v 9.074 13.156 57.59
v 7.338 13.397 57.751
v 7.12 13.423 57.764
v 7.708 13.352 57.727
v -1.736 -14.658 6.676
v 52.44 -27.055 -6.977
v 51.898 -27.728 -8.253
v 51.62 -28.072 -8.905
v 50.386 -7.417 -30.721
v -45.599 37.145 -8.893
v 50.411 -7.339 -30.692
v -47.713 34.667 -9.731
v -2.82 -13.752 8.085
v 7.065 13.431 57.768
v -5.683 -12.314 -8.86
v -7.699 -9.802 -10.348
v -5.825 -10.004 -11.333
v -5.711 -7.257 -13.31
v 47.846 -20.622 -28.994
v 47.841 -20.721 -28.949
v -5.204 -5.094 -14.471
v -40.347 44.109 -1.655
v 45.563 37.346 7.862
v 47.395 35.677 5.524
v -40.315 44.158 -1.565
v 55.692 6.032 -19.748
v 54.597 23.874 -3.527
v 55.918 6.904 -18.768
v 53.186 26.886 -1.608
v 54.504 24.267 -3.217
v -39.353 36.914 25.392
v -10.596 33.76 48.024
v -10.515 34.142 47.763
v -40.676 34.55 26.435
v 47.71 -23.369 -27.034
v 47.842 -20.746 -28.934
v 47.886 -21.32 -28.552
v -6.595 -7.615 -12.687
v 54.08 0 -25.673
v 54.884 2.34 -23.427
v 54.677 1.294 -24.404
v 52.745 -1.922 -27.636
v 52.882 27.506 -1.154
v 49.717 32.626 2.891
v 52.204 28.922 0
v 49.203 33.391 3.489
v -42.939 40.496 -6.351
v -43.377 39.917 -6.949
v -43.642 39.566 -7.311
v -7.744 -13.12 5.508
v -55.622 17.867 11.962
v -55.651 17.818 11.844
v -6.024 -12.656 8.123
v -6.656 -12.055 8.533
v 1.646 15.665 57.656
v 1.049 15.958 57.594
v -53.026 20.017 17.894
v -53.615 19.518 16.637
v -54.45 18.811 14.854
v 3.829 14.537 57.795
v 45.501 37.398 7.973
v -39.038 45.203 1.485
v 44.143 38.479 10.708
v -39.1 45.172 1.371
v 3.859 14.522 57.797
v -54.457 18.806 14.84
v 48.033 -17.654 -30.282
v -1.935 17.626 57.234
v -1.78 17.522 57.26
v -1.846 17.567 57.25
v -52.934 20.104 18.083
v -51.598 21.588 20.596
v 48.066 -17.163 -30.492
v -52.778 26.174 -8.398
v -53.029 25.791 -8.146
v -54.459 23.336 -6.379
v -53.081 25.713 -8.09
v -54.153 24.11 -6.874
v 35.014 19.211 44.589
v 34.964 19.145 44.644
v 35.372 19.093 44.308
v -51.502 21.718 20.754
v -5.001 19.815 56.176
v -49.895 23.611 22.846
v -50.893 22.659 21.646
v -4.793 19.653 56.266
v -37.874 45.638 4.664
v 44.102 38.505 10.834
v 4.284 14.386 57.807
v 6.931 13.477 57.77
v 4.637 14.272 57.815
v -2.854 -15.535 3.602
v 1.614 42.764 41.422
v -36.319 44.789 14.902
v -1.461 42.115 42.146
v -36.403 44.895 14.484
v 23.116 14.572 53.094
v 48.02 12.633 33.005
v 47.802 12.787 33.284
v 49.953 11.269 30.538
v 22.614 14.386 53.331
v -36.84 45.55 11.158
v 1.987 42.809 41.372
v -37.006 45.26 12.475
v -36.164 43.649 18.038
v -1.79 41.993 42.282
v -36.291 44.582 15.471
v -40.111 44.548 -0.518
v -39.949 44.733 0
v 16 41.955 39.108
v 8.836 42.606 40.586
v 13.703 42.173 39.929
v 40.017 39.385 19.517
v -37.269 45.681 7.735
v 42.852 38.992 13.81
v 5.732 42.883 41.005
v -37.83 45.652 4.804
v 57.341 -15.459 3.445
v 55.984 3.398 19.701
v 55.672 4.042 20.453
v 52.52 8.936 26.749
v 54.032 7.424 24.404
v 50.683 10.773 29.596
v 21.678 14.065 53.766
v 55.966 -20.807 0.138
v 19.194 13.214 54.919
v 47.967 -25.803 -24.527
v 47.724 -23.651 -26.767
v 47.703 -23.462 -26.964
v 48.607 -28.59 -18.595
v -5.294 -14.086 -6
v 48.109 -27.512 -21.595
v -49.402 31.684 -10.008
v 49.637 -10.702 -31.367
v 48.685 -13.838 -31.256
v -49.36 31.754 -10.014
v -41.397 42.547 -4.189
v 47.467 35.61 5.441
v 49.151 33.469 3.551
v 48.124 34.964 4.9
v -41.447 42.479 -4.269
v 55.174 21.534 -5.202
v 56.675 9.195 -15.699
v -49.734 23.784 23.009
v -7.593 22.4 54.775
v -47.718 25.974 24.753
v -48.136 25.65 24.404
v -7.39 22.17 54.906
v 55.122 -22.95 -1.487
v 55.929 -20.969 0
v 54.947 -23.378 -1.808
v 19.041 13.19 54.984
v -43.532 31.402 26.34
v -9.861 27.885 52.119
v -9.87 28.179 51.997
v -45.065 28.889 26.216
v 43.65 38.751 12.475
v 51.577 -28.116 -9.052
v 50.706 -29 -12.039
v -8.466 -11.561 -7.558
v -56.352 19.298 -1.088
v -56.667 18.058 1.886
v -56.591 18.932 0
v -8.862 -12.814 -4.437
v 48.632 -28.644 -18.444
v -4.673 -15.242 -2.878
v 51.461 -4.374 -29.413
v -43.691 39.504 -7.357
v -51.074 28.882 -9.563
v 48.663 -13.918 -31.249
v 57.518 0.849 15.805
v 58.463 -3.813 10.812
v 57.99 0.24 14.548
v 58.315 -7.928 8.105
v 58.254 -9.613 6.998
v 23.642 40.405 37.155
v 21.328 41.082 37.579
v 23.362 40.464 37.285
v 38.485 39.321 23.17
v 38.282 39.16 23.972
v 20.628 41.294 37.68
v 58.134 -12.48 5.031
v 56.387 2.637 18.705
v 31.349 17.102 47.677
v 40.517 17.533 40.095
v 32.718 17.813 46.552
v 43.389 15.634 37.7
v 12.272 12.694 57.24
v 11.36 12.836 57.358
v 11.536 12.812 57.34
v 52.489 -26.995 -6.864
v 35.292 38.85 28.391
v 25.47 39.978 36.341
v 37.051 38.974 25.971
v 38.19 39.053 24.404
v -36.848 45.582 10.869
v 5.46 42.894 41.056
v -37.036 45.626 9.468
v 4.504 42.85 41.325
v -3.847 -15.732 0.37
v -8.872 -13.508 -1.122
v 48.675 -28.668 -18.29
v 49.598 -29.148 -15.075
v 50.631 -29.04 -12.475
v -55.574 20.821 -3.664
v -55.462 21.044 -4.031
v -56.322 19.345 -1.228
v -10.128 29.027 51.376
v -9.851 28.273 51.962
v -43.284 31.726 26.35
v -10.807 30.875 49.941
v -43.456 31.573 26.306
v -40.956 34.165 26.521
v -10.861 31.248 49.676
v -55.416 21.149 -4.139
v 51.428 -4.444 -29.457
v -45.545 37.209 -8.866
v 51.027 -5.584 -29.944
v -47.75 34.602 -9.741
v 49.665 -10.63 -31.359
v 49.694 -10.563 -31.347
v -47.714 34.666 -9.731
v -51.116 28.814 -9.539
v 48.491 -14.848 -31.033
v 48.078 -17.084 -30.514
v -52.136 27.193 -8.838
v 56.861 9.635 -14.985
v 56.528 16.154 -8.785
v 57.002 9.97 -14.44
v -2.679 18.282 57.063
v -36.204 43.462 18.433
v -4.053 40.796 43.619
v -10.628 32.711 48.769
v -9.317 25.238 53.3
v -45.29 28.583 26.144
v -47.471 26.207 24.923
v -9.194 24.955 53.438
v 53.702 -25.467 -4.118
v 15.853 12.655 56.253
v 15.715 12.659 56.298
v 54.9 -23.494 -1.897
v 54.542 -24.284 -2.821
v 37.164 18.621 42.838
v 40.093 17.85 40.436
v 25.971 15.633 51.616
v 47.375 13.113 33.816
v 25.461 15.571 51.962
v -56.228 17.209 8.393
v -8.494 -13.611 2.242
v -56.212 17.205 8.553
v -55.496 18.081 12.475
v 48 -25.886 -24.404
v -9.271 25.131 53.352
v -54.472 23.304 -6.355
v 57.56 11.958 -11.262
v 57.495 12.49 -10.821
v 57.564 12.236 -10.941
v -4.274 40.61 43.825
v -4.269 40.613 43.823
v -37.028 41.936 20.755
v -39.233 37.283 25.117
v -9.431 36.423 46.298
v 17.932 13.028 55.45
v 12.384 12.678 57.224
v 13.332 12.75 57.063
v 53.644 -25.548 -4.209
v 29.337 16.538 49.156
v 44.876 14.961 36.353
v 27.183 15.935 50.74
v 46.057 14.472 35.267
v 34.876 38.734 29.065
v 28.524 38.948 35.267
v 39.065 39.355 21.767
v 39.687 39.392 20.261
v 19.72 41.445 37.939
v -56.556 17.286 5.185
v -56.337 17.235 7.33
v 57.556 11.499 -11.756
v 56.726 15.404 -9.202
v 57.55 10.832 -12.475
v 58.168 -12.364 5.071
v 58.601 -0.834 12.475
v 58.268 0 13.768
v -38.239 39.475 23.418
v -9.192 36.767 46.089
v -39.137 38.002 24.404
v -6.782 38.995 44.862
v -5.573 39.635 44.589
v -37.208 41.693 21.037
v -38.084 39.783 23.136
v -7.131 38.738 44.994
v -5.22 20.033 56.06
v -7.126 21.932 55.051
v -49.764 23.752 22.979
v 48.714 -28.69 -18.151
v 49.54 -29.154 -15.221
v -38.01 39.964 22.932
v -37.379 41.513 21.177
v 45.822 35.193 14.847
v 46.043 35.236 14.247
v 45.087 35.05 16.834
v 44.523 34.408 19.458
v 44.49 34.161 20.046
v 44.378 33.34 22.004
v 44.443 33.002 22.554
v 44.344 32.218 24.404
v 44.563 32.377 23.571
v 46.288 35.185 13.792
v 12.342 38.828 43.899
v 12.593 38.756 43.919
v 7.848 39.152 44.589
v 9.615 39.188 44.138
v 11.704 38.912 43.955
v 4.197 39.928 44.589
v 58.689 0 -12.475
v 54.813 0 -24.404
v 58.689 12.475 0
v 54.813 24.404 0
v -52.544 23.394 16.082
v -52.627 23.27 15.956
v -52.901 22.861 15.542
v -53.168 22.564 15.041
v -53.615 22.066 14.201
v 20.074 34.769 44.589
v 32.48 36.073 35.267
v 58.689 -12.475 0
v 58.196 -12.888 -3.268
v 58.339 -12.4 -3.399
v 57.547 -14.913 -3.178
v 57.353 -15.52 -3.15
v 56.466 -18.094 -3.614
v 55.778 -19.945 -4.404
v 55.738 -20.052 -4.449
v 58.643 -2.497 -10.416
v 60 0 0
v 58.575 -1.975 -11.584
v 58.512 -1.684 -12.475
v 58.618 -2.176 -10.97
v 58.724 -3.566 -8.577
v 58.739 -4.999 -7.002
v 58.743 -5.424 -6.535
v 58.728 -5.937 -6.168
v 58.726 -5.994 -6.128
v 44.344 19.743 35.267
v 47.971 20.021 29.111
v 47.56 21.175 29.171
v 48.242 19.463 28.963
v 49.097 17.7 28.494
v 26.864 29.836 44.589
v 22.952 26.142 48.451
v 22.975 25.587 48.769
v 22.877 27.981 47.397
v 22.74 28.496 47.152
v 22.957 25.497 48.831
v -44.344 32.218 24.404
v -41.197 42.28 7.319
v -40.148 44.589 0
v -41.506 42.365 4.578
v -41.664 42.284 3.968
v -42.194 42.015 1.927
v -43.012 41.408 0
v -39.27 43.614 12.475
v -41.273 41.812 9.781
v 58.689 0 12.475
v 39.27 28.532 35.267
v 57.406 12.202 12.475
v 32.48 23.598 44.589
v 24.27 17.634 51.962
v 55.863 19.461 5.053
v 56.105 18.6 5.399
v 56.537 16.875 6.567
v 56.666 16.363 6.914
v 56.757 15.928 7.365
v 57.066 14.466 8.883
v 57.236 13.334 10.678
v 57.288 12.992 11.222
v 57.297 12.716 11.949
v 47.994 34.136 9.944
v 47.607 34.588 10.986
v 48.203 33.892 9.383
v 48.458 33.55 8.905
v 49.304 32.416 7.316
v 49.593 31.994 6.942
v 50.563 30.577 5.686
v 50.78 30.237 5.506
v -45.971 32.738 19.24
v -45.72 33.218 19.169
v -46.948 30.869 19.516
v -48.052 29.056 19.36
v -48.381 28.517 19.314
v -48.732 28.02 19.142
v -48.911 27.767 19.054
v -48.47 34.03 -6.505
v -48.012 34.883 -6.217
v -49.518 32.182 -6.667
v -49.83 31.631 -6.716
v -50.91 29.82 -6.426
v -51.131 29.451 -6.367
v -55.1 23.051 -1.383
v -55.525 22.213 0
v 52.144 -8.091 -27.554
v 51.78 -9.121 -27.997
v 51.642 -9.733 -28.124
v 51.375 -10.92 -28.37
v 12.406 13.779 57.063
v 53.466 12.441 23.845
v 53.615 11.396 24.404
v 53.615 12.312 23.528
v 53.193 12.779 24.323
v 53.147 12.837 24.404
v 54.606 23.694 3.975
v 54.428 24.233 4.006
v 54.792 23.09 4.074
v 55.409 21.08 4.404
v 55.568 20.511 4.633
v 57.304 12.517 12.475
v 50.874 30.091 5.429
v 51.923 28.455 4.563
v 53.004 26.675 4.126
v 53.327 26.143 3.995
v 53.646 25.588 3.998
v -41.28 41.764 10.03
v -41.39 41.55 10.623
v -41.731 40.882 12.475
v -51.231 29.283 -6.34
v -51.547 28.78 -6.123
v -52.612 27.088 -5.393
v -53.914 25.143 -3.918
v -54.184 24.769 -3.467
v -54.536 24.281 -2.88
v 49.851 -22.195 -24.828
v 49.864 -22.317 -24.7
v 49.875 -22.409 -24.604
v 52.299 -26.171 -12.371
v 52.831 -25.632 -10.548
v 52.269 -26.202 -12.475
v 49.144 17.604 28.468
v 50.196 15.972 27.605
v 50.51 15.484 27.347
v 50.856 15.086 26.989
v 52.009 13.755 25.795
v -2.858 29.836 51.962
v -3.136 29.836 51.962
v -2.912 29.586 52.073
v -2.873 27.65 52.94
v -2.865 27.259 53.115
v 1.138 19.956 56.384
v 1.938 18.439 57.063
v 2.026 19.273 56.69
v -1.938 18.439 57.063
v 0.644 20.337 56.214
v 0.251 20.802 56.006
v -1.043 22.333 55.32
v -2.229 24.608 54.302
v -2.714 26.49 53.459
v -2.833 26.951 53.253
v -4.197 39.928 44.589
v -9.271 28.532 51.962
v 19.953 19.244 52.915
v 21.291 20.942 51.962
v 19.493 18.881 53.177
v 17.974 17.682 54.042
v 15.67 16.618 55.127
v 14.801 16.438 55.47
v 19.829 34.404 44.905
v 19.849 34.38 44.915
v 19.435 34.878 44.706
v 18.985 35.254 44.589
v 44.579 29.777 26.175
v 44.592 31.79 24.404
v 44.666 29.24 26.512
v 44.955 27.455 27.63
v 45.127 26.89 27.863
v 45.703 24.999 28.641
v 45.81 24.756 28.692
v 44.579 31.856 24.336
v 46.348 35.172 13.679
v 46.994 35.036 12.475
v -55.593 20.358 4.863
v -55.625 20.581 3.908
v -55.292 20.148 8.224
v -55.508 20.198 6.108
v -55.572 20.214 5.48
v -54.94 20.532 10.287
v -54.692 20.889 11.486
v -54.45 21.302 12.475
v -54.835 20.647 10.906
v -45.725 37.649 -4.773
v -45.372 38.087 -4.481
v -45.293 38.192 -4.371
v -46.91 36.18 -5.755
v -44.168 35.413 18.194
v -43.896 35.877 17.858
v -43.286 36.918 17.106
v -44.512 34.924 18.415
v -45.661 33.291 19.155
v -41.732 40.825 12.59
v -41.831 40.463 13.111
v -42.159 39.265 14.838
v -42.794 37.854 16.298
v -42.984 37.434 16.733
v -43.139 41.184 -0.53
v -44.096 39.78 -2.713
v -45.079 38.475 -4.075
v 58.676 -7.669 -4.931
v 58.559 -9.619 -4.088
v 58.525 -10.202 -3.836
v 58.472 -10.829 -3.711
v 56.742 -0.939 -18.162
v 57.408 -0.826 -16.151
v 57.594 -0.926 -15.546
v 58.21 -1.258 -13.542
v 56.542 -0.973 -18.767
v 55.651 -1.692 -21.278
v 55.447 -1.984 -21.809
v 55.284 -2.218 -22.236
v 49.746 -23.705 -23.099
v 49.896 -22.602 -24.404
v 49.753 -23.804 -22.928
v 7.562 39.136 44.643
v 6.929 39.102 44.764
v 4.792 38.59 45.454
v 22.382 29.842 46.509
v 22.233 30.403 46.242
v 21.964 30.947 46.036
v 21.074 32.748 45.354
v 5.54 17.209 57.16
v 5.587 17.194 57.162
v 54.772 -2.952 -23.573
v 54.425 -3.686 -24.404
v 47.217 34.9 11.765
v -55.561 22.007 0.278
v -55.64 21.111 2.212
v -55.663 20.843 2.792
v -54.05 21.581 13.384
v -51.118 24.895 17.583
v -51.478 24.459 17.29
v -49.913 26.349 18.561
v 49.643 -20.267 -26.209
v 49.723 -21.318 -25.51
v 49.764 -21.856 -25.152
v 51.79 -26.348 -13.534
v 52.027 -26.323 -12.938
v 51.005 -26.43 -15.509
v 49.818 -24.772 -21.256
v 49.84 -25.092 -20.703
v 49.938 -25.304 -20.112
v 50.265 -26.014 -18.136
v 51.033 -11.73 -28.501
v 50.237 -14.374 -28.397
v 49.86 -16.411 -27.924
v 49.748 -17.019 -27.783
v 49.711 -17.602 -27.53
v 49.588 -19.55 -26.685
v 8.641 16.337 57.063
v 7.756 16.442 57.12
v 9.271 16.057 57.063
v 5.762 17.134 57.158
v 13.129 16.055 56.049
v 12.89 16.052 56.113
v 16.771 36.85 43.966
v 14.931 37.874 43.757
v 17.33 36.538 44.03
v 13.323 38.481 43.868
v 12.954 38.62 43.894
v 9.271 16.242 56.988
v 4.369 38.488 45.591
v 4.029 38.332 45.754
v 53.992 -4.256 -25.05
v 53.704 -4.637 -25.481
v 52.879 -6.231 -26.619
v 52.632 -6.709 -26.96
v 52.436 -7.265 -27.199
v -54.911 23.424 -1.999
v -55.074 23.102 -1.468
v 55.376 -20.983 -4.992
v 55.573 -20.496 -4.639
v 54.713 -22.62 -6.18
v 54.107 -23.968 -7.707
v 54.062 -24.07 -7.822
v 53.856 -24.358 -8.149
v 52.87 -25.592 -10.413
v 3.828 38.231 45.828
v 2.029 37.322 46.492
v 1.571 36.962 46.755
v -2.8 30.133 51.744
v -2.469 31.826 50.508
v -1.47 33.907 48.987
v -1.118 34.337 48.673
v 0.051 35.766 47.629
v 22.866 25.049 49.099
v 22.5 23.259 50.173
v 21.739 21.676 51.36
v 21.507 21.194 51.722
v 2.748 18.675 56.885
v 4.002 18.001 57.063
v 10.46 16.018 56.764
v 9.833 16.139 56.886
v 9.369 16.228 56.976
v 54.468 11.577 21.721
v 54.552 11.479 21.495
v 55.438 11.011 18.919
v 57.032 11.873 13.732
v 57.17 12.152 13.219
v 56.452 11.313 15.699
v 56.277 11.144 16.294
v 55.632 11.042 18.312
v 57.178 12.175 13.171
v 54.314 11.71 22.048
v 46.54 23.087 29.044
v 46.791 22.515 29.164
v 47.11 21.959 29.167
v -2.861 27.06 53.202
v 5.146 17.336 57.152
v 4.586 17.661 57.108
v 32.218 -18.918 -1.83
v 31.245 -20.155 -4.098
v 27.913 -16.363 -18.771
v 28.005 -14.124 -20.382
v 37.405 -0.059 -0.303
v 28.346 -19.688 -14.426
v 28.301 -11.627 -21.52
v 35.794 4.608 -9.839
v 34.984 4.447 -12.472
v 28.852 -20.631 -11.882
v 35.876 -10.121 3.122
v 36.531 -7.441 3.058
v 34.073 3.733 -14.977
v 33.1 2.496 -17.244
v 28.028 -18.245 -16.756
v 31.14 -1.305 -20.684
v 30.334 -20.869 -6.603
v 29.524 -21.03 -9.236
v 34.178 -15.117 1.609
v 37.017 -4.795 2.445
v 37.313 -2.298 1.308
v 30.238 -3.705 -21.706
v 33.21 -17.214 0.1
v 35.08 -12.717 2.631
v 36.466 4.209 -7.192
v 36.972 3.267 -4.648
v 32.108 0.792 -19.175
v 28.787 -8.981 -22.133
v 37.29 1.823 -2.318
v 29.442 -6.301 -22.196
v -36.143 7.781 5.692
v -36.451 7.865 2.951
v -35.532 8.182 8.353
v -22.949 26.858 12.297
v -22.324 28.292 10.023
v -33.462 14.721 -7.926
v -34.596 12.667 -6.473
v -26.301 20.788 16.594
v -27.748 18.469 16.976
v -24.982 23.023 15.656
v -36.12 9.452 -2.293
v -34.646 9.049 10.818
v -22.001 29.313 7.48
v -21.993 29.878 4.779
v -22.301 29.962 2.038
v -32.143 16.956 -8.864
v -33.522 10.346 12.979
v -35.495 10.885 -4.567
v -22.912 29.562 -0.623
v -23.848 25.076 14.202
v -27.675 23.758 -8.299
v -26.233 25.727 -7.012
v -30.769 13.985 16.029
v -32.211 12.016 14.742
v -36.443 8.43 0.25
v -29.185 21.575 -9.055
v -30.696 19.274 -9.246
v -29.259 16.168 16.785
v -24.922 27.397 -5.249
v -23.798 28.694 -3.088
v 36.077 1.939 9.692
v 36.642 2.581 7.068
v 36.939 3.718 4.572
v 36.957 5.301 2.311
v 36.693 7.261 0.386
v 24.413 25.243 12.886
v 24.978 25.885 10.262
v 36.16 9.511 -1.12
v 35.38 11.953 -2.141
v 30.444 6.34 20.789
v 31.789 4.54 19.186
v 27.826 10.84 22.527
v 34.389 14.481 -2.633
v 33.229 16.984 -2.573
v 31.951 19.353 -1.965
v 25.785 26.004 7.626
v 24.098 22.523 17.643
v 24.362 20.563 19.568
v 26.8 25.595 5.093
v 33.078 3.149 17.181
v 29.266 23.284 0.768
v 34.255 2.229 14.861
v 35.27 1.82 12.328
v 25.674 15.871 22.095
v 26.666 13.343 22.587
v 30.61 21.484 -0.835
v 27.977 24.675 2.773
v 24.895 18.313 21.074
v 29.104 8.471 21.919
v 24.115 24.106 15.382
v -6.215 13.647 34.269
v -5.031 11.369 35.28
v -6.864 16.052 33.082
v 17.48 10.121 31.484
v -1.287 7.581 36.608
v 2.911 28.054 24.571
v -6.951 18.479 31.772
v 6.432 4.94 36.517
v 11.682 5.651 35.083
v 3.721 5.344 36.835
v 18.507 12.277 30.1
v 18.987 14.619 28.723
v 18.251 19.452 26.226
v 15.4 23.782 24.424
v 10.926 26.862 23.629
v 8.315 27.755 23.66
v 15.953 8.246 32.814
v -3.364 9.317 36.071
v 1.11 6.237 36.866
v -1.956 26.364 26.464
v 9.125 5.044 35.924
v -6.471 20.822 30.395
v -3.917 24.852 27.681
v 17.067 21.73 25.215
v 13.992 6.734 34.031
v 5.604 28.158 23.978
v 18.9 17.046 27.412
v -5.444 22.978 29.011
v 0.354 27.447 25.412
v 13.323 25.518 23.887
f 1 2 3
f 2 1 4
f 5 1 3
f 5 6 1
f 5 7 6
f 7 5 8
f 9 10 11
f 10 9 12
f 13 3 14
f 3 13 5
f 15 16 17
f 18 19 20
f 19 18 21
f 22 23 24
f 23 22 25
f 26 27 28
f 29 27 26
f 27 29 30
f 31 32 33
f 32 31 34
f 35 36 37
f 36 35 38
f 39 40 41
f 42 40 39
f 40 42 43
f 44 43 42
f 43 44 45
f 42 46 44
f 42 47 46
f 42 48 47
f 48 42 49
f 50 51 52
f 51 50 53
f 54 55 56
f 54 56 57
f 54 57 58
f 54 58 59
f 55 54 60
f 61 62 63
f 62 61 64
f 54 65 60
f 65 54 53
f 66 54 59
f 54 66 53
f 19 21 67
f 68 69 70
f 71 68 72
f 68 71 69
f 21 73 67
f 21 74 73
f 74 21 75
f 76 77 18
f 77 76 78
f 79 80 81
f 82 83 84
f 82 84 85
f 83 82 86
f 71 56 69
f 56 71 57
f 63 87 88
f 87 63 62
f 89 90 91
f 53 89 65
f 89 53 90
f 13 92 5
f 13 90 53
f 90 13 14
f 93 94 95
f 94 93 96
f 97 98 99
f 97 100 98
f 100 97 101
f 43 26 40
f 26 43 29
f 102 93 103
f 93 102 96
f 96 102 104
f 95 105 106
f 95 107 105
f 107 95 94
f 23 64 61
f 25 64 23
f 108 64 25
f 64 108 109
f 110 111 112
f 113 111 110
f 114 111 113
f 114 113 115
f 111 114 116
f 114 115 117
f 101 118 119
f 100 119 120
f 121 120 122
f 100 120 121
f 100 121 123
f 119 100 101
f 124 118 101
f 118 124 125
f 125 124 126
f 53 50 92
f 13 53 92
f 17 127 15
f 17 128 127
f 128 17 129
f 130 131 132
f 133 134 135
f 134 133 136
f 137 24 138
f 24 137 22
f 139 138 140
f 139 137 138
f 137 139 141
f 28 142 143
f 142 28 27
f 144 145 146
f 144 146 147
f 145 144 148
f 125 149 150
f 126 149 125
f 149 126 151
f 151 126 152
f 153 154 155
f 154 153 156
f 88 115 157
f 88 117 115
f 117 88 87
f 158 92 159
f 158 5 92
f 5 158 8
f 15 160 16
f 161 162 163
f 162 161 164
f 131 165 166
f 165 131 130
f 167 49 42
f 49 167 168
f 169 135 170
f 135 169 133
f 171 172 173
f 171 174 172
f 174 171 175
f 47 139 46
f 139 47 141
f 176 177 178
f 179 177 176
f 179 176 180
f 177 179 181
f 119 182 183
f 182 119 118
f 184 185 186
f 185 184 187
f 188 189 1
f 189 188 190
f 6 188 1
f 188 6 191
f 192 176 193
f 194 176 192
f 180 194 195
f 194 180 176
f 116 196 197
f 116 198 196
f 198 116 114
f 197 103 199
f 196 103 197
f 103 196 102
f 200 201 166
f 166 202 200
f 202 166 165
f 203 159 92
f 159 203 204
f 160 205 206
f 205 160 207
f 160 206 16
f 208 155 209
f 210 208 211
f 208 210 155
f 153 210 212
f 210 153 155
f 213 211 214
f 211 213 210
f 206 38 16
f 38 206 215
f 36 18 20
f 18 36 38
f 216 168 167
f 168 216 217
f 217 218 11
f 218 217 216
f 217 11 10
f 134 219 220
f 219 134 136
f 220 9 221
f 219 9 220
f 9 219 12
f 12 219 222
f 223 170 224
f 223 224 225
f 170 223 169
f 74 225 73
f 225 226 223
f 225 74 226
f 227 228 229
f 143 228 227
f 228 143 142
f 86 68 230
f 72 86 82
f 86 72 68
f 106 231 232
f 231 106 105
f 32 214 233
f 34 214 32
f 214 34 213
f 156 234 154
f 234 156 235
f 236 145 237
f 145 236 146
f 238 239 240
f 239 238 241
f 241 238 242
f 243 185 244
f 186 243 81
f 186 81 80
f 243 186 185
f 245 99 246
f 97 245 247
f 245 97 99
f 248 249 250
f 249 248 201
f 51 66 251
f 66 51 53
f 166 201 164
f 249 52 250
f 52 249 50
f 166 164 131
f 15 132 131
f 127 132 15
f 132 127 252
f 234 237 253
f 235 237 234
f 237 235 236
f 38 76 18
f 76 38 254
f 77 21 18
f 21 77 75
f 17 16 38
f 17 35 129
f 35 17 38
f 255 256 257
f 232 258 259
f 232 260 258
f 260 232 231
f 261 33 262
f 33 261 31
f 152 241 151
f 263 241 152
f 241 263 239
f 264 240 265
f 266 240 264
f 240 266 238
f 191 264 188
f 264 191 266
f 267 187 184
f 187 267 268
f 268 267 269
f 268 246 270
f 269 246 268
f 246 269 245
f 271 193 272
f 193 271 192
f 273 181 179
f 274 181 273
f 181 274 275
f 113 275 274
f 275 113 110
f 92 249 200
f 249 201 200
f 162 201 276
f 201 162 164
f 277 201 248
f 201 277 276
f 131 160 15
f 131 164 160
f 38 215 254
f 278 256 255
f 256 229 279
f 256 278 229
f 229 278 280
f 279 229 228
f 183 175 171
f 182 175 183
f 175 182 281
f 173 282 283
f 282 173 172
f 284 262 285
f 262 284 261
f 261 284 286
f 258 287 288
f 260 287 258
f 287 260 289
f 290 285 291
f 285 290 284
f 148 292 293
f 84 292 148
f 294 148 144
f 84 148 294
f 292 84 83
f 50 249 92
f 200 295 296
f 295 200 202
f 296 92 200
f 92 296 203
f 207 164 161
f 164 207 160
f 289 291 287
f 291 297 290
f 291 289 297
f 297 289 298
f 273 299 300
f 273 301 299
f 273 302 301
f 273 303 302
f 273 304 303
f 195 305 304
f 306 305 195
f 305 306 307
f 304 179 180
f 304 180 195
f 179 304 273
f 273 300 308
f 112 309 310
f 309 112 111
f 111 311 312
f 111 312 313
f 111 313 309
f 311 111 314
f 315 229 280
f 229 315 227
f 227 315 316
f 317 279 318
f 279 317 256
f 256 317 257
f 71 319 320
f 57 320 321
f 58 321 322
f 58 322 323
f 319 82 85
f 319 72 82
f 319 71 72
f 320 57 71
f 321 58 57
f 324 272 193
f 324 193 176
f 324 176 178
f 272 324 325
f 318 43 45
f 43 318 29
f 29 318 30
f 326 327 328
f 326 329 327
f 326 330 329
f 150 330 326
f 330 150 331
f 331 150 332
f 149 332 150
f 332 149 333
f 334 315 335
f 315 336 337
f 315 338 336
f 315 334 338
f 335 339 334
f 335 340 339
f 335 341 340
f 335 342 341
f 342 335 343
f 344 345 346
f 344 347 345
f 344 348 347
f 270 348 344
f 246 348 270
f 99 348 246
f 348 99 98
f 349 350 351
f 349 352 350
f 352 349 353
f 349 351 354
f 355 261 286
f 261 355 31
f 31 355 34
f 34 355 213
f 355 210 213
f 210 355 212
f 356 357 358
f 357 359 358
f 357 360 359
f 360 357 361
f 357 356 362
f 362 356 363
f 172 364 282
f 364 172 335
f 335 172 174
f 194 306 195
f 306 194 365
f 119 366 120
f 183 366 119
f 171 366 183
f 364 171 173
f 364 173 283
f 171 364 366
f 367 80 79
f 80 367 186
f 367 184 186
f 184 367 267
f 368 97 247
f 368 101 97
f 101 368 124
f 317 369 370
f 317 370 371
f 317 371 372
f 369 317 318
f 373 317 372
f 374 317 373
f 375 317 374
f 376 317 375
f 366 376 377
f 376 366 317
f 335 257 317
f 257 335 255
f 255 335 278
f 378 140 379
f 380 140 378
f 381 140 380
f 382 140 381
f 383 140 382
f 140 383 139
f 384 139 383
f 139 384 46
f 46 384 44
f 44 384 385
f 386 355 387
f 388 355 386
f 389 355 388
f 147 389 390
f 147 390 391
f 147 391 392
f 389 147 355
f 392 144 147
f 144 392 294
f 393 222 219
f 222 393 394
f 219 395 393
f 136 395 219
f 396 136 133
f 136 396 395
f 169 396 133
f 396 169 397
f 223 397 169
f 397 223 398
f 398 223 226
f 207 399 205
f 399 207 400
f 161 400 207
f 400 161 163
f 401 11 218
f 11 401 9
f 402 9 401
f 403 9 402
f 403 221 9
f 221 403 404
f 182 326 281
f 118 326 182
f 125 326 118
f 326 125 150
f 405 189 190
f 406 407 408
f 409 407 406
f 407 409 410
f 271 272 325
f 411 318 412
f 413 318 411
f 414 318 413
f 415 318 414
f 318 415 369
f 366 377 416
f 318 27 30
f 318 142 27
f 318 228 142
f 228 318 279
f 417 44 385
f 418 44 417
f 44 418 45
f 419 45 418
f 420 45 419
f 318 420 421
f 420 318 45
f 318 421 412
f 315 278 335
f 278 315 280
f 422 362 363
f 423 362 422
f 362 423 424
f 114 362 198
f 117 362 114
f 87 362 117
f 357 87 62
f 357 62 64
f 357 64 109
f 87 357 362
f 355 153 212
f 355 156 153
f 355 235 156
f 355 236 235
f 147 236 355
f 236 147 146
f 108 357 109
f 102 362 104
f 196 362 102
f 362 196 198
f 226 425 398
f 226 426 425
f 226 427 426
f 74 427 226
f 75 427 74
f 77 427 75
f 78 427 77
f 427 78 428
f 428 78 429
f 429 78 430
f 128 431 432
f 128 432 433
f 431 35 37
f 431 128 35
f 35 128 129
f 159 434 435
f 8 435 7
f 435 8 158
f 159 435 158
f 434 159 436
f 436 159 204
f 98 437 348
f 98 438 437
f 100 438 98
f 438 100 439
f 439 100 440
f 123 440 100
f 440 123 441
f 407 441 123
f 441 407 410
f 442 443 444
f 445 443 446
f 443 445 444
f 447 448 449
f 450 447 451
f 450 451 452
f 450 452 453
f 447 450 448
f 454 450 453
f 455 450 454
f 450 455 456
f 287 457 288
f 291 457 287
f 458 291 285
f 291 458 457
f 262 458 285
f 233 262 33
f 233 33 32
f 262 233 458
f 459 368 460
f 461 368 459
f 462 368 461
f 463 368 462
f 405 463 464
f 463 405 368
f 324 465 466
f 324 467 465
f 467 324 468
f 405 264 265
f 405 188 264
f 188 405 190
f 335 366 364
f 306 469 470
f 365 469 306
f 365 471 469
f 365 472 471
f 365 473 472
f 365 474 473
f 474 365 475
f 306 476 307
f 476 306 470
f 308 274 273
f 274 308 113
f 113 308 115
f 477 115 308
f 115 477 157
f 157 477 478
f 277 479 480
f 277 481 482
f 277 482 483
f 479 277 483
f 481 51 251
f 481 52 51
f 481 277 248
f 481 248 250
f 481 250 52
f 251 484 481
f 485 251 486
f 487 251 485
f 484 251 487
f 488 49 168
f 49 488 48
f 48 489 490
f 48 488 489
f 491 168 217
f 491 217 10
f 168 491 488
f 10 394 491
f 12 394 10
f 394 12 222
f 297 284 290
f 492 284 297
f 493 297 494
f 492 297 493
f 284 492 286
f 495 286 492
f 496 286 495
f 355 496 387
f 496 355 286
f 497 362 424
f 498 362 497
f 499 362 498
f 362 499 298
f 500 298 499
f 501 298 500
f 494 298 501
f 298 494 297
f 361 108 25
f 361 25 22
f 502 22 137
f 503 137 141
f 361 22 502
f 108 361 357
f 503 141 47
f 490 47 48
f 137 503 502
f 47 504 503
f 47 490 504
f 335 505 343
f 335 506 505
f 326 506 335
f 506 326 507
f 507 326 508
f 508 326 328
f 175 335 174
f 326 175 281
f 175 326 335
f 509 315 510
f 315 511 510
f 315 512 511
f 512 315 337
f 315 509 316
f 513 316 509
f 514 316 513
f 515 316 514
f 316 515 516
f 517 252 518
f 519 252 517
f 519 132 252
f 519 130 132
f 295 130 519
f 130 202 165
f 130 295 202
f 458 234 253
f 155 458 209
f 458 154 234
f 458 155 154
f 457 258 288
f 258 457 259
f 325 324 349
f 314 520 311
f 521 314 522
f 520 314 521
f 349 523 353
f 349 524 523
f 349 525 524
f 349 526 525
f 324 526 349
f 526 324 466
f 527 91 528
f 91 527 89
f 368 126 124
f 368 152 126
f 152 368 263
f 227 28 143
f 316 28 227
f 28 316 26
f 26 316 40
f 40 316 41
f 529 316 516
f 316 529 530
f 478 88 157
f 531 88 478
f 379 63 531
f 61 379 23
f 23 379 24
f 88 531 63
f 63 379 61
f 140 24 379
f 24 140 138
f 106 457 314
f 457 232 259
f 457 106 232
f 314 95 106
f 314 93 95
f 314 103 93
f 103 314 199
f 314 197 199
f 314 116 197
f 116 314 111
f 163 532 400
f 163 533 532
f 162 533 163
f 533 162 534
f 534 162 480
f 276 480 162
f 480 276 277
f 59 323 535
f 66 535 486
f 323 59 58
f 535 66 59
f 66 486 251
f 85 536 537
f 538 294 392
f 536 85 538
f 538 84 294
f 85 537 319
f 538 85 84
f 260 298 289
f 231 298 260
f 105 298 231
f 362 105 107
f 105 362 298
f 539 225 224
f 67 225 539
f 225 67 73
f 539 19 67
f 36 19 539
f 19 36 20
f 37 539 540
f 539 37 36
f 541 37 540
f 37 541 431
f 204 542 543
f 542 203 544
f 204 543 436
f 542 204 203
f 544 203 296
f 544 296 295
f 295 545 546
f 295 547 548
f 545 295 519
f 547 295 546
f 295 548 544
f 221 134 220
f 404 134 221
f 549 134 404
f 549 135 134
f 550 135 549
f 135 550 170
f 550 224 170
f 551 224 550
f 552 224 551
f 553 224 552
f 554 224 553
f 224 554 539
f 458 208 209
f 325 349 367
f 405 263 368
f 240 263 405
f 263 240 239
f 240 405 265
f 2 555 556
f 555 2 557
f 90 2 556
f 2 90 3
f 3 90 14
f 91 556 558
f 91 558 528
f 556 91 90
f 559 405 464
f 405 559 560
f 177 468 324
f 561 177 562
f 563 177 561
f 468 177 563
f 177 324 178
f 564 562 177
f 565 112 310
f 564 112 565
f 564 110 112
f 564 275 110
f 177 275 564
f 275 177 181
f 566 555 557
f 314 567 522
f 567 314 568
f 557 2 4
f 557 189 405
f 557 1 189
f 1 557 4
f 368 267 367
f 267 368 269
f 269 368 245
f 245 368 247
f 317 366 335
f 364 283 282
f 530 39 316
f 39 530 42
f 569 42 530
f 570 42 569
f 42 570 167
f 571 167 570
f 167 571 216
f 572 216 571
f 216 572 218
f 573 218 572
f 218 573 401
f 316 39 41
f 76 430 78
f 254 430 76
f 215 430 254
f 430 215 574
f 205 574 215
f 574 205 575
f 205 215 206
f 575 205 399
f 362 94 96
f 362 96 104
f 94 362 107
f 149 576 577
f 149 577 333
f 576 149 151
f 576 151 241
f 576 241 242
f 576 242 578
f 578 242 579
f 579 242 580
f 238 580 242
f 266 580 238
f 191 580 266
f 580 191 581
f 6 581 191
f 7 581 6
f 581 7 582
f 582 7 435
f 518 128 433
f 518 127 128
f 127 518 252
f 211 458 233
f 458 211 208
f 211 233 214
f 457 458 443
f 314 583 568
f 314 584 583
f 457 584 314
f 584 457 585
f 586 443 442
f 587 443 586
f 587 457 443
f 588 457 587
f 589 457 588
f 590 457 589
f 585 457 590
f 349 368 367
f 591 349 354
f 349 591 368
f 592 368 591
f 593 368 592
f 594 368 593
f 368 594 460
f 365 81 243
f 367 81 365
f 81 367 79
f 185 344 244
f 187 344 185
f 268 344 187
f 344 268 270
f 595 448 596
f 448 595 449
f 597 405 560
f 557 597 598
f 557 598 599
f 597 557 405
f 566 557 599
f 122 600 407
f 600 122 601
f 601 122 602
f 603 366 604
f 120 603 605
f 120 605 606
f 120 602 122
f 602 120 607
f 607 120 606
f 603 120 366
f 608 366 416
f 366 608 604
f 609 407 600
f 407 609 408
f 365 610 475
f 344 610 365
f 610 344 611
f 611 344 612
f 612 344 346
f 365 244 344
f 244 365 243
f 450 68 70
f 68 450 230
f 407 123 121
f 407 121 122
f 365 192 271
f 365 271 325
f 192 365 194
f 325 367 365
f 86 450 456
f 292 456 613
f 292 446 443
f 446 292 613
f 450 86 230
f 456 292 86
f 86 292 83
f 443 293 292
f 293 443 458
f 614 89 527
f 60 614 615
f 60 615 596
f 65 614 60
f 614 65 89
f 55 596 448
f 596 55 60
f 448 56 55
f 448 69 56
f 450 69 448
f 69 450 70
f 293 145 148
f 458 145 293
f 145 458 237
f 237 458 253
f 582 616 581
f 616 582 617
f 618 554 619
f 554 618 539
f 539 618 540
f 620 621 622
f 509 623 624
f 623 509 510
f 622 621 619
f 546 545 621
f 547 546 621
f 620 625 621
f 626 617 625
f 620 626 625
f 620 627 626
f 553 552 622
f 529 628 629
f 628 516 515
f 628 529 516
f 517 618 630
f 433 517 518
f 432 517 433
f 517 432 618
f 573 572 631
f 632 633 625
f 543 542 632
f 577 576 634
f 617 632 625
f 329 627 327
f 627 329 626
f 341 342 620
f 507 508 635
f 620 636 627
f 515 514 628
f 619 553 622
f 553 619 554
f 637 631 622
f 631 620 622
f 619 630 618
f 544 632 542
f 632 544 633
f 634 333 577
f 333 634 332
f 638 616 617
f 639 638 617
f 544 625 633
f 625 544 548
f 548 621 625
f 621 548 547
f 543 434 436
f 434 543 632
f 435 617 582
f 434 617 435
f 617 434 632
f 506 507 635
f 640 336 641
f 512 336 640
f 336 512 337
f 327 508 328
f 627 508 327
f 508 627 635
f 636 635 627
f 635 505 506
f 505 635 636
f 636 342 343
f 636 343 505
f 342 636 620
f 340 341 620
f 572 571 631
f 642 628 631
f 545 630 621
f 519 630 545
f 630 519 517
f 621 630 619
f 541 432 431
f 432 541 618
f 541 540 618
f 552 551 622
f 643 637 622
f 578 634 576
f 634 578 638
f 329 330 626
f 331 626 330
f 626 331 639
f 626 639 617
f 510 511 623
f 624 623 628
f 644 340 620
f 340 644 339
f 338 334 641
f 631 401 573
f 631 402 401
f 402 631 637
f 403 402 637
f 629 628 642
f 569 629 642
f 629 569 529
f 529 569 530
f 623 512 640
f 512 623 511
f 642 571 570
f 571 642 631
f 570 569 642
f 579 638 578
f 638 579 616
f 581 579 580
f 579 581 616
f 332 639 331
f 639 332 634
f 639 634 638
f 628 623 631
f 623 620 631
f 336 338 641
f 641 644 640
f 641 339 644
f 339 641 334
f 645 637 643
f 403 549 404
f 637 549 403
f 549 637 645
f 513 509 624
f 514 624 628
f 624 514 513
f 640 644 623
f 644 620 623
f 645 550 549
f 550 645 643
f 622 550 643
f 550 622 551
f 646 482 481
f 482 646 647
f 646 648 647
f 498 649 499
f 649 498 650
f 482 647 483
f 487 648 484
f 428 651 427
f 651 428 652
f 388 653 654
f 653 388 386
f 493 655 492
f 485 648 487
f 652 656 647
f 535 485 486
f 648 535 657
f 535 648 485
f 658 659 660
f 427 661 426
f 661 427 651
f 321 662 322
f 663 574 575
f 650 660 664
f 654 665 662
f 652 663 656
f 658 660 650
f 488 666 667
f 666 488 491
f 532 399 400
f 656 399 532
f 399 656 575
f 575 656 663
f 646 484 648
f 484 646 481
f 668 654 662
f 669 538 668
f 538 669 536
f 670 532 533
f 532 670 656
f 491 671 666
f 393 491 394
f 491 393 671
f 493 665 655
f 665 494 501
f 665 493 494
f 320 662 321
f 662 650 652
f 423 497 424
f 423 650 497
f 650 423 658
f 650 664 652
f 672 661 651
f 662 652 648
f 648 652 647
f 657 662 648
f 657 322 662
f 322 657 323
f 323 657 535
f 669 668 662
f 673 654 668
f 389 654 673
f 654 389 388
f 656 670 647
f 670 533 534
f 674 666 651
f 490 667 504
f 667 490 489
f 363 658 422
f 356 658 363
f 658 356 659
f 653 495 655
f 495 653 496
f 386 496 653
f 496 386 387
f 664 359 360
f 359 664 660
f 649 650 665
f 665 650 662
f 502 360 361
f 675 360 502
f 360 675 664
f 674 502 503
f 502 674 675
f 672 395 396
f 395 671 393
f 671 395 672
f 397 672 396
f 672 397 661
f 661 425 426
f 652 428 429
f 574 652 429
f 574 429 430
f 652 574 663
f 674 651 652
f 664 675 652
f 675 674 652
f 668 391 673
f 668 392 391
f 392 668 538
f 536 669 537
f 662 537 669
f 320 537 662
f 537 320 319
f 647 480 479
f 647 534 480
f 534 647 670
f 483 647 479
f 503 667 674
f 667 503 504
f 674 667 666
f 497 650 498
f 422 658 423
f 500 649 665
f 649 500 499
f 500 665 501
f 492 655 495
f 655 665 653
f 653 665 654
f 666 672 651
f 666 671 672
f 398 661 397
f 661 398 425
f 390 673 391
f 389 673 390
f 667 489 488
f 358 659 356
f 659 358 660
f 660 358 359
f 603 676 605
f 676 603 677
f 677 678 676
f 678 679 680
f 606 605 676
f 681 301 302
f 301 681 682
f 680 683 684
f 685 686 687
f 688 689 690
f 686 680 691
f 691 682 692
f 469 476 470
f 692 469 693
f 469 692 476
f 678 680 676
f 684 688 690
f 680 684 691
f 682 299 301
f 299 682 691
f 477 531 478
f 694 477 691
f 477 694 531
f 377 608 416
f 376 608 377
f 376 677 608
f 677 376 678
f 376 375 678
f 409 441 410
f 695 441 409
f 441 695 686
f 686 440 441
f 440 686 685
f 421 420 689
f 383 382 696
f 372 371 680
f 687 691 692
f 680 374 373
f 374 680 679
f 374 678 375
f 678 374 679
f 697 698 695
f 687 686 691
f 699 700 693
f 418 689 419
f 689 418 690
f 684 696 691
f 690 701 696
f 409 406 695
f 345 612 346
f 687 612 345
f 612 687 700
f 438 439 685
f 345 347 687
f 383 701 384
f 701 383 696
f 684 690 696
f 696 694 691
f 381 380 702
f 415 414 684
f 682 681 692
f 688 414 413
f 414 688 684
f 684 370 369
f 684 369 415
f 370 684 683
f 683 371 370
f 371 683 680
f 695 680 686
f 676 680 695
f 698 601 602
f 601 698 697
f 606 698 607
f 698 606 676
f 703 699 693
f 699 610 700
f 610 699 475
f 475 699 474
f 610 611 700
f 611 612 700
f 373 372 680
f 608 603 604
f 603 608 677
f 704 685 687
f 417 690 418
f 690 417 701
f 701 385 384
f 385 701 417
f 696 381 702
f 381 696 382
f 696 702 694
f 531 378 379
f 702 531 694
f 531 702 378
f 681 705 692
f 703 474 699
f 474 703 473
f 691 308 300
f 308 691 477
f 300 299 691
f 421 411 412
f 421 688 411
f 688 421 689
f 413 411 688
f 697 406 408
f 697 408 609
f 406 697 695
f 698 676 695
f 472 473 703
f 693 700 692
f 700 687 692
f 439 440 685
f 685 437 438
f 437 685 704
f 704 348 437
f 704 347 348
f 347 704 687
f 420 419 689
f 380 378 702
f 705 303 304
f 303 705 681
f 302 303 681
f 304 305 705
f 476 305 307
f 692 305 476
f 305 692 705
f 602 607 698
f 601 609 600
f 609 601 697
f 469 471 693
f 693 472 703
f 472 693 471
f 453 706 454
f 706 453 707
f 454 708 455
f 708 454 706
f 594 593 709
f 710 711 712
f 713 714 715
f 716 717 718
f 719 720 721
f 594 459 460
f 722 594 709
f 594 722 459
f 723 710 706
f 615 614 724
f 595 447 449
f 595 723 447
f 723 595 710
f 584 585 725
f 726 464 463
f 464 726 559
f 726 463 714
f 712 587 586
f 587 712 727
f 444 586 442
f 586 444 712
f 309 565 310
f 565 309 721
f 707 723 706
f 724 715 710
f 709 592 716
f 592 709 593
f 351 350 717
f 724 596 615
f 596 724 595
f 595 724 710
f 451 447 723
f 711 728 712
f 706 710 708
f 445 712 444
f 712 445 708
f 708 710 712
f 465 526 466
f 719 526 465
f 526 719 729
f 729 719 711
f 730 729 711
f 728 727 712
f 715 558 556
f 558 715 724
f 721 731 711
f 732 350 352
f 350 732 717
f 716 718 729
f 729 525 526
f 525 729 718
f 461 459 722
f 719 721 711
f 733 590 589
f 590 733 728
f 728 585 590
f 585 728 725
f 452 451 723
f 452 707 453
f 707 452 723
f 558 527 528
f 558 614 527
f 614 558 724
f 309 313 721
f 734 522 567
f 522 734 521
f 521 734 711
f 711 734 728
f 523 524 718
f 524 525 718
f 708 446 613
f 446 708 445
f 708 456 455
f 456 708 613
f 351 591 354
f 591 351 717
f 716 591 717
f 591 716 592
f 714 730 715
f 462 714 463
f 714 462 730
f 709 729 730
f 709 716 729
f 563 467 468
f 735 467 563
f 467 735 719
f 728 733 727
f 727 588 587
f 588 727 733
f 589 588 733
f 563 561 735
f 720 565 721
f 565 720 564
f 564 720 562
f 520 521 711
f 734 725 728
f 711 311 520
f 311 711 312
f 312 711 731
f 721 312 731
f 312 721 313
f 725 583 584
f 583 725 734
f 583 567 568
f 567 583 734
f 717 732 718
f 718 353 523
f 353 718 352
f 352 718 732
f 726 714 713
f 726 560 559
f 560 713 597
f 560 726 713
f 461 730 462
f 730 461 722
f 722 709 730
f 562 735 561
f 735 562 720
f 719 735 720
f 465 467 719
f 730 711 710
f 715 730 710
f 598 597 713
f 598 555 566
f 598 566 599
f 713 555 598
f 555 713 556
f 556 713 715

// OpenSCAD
difference() {
	intersection() {
		hull() {
			rotate(a = -150.5328343081, v = [-0.3526950738, 0.3429228815, 0.0000000000]) {
				rotate(a = -90.0000000000, v = [-0.9775364867, -0.2107662617, 0.0000000000]) {
					cylinder(h = 60, r = 16.2000000000);
				}
			}
			rotate(a = -150.5328343081, v = [-0.3526950738, 0.3429228815, 0.0000000000]) {
				rotate(a = -90.0000000000, v = [0.8402569315, 0.5421884257, -0.0000000000]) {
					cylinder(h = 60, r = 16.2000000000);
				}
			}
			rotate(a = -150.5328343081, v = [-0.3526950738, 0.3429228815, 0.0000000000]) {
				rotate(a = -133.4303559138, v = [-0.6996671342, 0.1945447346, 0.0000000000]) {
					cylinder(h = 60, r = 16.2000000000);
				}
			}
			rotate(a = -150.5328343081, v = [-0.3526950738, 0.3429228815, 0.0000000000]) {
				rotate(a = -167.9994481359, v = [0.1622053831, 0.1300792166, -0.0000000000]) {
					cylinder(h = 60, r = 16.2000000000);
				}
			}
		}
		sphere(r = 60);
	}
	union() {
		rotate(a = -150.5328343081, v = [-0.3526950738, 0.3429228815, 0.0000000000]) {
			rotate(a = -90.0000000000, v = [-0.9775364867, -0.2107662617, 0.0000000000]) {
				translate(v = [0, 0, 35]) {
					cylinder(h = 100, r = 13.2000000000);
				}
			}
		}
		rotate(a = -150.5328343081, v = [-0.3526950738, 0.3429228815, 0.0000000000]) {
			rotate(a = -90.0000000000, v = [0.8402569315, 0.5421884257, -0.0000000000]) {
				translate(v = [0, 0, 35]) {
					cylinder(h = 100, r = 13.2000000000);
				}
			}
		}
		rotate(a = -150.5328343081, v = [-0.3526950738, 0.3429228815, 0.0000000000]) {
			rotate(a = -133.4303559138, v = [-0.6996671342, 0.1945447346, 0.0000000000]) {
				translate(v = [0, 0, 35]) {
					cylinder(h = 100, r = 13.2000000000);
				}
			}
		}
		rotate(a = -150.5328343081, v = [-0.3526950738, 0.3429228815, 0.0000000000]) {
			rotate(a = -167.9994481359, v = [0.1622053831, 0.1300792166, -0.0000000000]) {
				translate(v = [0, 0, 35]) {
					cylinder(h = 100, r = 13.2000000000);
				}
			}
		}
	}
}
